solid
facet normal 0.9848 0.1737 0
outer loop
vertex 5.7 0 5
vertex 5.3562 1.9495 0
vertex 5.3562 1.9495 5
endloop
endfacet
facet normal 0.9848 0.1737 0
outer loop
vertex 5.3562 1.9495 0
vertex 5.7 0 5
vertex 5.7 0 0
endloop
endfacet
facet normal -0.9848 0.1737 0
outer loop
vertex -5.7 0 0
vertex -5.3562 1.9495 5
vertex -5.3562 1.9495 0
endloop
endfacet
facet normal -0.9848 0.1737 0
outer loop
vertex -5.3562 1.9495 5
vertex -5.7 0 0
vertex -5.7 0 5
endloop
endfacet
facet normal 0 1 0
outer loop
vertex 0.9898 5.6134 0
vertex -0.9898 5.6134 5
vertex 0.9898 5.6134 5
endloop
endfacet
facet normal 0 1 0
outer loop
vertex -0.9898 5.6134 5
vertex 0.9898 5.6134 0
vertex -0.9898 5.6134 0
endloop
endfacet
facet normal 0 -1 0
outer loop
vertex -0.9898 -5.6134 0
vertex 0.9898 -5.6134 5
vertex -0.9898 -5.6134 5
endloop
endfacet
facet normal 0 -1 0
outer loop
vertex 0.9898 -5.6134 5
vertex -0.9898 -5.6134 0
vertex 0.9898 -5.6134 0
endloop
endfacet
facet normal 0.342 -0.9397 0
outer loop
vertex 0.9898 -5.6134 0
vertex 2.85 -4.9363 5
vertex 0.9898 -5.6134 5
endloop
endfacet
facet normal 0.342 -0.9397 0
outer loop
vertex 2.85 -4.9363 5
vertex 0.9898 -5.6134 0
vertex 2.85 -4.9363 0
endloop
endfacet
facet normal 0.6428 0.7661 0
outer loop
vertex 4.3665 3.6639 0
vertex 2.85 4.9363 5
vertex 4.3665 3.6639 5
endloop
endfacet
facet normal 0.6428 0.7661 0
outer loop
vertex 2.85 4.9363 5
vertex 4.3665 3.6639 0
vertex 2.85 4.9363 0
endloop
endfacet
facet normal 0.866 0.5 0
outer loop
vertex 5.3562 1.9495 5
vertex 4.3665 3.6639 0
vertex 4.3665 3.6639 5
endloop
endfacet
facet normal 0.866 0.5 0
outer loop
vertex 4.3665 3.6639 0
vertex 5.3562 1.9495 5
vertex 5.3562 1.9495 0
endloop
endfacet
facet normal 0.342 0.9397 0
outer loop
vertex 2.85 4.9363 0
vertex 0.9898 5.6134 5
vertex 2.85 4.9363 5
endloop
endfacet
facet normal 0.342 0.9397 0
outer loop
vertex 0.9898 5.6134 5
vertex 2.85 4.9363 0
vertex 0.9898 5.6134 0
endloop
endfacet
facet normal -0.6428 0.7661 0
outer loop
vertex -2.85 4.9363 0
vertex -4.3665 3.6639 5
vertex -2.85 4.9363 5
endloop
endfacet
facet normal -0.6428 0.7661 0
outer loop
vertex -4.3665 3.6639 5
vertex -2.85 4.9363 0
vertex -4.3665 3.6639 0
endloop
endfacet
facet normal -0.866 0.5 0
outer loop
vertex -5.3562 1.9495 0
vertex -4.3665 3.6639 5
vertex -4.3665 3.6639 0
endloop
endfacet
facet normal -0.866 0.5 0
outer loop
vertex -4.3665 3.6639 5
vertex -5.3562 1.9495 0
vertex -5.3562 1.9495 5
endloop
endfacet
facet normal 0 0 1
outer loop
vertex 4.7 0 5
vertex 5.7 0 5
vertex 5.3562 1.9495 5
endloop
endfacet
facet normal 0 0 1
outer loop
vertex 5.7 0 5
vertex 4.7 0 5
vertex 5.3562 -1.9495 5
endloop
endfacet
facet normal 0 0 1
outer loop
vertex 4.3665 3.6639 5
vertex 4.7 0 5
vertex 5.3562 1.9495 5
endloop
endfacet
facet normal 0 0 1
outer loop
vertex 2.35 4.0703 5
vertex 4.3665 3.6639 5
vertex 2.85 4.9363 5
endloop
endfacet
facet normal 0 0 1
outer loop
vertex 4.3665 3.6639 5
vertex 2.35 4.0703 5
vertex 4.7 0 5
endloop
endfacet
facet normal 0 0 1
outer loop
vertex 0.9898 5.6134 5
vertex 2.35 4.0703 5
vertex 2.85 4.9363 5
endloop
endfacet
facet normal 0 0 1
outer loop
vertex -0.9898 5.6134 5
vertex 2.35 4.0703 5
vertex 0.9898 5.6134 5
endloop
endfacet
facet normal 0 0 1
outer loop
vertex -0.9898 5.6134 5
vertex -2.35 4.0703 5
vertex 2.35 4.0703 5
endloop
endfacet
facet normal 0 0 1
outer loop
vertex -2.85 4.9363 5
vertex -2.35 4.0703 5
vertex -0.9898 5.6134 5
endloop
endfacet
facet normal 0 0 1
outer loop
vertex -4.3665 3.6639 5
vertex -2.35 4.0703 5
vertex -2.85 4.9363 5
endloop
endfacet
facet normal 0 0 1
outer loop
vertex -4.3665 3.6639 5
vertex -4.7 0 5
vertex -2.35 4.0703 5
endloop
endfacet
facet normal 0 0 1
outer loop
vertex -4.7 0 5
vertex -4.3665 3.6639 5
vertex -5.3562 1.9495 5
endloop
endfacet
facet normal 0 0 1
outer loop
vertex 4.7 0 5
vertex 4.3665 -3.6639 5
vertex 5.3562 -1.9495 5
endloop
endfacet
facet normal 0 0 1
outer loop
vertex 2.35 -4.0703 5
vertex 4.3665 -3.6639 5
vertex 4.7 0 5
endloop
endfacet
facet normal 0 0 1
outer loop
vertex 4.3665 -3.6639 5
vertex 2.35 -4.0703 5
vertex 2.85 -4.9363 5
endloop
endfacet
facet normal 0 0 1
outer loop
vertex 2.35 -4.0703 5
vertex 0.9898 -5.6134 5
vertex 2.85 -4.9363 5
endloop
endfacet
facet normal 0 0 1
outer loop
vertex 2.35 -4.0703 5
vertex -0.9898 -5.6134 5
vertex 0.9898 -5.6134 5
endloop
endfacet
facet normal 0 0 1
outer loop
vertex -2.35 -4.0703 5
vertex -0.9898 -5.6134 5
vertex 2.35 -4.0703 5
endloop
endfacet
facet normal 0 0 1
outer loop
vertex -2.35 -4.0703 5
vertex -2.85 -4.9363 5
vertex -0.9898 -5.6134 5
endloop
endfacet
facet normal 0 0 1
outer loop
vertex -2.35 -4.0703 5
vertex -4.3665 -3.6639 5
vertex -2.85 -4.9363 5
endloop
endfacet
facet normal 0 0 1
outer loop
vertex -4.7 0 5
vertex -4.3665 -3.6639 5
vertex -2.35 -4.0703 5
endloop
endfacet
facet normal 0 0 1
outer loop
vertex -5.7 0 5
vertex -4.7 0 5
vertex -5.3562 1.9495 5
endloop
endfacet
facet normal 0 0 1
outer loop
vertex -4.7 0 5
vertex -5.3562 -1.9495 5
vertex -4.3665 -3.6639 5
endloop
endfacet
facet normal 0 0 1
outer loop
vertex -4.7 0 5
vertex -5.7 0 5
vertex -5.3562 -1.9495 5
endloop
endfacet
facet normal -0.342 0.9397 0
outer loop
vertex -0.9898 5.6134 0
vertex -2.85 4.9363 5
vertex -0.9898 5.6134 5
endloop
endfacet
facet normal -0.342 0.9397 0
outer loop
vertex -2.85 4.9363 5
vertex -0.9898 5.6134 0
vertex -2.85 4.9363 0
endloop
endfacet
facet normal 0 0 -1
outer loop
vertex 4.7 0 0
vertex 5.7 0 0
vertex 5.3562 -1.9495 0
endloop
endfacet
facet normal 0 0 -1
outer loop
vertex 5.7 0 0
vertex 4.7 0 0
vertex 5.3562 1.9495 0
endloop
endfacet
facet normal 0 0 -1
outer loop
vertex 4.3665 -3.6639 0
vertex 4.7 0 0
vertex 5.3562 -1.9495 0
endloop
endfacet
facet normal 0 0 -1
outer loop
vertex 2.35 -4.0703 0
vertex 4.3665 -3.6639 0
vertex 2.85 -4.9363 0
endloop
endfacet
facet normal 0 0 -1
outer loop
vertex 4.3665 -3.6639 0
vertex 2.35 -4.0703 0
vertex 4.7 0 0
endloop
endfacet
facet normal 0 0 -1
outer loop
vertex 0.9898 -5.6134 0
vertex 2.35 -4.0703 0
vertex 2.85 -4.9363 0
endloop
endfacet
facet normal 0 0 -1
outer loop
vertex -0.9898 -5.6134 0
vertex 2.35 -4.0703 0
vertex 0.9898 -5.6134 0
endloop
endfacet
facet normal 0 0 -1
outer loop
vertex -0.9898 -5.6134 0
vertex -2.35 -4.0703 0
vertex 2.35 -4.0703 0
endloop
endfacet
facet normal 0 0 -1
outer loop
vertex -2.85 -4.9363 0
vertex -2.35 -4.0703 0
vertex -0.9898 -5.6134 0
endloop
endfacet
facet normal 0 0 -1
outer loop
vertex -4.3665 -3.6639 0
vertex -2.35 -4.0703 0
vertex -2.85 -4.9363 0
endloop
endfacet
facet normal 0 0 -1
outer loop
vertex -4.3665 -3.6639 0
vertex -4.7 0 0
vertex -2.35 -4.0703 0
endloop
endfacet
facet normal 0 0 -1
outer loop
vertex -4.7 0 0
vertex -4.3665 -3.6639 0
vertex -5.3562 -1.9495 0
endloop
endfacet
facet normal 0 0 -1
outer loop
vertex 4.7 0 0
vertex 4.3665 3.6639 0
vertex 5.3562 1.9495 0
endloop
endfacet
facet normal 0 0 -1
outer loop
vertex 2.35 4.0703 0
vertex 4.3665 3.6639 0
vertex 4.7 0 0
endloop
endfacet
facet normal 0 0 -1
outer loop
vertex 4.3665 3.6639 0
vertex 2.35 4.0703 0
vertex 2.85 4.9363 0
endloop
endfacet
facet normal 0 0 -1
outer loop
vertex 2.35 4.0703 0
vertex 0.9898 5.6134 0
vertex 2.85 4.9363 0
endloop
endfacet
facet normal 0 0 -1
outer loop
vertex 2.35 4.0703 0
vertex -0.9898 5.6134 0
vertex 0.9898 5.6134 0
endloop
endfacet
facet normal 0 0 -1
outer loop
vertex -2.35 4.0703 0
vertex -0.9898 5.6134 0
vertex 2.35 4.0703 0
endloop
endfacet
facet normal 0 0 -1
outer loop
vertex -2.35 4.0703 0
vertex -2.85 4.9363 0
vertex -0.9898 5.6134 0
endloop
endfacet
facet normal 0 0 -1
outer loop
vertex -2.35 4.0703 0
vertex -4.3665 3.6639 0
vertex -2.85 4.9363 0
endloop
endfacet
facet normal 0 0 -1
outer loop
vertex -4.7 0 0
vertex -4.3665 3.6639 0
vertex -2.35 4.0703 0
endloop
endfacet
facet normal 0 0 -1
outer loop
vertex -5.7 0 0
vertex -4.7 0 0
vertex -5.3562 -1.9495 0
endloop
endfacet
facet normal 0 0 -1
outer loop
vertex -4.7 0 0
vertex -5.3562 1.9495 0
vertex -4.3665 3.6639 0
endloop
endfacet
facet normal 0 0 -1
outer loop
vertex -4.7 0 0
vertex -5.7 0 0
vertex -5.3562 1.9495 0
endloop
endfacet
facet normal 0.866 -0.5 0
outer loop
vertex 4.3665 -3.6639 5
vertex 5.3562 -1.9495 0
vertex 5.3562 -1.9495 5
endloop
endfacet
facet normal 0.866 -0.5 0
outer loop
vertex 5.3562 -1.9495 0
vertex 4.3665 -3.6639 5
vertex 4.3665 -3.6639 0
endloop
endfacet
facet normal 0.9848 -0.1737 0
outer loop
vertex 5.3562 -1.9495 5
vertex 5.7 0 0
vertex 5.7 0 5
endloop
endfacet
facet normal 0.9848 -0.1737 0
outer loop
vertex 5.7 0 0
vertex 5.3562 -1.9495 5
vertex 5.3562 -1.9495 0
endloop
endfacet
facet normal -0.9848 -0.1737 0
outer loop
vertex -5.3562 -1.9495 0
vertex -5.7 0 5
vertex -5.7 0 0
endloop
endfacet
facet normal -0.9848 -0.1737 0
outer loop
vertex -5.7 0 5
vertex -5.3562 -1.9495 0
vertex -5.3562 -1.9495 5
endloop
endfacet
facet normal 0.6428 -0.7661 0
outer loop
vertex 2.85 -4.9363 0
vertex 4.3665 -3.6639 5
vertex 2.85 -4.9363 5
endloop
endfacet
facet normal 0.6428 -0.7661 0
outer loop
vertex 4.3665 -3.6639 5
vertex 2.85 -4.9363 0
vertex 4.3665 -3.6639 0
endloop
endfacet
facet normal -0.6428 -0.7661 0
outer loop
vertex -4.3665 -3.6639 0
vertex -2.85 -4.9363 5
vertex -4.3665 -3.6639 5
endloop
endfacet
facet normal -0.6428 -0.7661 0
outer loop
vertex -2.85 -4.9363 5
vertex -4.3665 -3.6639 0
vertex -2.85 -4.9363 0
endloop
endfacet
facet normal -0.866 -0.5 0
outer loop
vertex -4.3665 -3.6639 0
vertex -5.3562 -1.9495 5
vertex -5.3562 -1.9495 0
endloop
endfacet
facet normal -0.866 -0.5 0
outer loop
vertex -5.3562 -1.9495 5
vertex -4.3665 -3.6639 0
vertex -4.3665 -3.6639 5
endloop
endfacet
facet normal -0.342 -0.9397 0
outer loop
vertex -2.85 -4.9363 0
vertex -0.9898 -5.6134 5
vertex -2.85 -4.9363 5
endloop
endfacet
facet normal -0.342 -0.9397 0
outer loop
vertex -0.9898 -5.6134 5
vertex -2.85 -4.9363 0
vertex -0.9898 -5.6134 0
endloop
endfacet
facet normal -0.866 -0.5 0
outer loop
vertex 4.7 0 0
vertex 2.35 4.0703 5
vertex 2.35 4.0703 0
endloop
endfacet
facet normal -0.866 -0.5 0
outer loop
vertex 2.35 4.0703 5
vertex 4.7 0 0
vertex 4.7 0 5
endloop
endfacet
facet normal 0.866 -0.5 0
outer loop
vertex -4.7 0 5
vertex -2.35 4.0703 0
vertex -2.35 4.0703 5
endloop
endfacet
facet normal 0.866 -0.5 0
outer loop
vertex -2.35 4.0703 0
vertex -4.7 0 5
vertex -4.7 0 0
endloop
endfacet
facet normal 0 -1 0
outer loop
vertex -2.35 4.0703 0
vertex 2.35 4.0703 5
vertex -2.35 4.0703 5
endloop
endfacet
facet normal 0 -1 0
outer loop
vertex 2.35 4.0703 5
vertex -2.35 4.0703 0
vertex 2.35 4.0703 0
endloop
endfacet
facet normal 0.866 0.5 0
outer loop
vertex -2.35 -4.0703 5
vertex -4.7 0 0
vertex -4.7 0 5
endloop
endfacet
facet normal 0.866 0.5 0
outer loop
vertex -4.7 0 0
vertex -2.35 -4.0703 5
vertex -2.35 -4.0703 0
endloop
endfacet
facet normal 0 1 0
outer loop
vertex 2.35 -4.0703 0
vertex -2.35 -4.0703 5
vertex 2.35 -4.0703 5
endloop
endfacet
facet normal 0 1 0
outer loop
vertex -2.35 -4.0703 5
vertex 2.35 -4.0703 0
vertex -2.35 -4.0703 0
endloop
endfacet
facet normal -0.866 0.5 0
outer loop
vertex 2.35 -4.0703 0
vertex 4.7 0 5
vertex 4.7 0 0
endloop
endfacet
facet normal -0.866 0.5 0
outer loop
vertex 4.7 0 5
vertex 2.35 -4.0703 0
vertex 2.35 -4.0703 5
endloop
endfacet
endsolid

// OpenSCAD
difference() {
    cylinder(h=5,r=5.7);
    translate([0,0,-0.1])
        cylinder(h=6,r=4.7,$fn=6);
}
